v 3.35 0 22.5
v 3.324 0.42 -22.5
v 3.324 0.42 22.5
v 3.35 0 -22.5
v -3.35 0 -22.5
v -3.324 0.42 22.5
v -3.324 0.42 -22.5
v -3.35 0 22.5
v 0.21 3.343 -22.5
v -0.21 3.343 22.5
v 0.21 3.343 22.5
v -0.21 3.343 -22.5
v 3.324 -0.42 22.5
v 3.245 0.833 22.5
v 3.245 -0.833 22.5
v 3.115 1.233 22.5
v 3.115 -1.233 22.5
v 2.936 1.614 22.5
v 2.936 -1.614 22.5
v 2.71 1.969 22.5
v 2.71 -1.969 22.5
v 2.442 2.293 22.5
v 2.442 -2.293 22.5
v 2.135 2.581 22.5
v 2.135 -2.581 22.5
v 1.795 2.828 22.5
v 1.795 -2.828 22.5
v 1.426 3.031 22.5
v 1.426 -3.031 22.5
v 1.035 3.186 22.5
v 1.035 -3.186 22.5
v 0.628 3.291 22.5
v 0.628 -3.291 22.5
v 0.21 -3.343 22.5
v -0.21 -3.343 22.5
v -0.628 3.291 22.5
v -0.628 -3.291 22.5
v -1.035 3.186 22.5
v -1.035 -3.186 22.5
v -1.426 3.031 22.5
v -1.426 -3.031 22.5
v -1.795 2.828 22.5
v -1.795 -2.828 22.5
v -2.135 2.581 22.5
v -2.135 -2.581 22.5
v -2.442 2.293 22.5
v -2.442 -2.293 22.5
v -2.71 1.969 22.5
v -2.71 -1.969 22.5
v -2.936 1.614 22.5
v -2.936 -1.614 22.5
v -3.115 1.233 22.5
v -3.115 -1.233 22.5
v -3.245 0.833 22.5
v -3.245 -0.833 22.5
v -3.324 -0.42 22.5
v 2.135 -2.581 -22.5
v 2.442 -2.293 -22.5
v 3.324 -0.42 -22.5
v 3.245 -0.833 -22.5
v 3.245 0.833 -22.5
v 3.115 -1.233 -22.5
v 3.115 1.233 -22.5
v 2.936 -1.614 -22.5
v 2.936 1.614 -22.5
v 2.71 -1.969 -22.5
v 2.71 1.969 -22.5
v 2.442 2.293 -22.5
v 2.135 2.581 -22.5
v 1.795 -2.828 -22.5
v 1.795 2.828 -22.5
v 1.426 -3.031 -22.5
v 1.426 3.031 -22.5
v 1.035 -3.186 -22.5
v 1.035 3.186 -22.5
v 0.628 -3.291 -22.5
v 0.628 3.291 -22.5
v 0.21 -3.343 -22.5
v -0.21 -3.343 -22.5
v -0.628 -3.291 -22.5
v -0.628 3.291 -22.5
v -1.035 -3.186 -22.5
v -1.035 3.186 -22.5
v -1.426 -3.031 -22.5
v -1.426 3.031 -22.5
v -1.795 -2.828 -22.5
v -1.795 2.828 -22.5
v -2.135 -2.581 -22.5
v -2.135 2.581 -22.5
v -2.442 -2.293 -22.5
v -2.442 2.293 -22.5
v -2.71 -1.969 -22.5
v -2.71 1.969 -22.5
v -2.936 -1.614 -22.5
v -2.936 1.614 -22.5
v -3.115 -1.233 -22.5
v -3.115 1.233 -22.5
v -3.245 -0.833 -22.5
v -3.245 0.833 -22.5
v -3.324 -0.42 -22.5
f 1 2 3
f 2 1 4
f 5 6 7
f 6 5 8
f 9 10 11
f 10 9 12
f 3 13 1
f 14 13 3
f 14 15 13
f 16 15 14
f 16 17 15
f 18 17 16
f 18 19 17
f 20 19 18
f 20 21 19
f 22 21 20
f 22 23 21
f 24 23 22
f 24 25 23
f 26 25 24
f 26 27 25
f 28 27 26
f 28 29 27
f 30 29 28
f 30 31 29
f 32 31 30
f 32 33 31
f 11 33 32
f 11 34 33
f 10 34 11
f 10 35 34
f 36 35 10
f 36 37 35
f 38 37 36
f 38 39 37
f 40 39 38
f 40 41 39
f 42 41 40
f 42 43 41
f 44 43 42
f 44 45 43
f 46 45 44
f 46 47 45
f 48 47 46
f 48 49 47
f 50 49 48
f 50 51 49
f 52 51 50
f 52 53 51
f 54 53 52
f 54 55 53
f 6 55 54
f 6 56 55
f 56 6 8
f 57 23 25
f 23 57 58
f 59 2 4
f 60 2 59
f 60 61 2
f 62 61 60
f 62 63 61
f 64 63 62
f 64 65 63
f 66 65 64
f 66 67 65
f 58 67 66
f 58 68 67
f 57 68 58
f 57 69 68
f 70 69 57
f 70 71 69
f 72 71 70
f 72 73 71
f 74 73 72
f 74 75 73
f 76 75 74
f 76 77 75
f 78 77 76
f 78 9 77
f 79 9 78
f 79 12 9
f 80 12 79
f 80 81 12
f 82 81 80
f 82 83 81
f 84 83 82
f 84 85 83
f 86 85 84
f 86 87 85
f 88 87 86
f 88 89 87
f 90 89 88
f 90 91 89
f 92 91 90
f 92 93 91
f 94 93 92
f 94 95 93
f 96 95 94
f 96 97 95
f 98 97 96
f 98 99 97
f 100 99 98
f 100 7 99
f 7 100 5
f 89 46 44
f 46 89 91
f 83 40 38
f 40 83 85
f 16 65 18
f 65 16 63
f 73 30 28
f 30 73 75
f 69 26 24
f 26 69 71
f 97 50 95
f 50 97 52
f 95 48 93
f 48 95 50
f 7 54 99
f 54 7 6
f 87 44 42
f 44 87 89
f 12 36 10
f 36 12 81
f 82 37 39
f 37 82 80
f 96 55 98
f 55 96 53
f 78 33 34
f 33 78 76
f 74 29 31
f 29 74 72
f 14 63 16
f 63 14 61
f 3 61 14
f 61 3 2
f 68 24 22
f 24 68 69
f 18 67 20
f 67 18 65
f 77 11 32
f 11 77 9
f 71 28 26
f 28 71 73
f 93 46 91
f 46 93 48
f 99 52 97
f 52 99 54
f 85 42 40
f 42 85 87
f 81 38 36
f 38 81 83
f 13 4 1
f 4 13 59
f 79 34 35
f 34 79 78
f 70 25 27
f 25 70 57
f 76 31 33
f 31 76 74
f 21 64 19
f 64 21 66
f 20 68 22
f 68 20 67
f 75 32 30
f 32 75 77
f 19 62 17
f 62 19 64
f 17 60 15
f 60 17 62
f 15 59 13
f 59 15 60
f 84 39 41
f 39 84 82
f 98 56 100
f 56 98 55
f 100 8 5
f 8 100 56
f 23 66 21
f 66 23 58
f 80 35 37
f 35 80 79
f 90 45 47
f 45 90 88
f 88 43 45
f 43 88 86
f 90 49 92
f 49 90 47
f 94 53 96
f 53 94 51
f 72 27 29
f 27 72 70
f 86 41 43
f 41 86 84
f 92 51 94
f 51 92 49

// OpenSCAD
$fn = 50;


difference() {
	union() {
		translate(v = [0, 0, -22.5000000000]) {
			cylinder(h = 45, r = 3.3500000000);
		}
	}
	union() {
		translate(v = [0, 0, -100.0000000000]) {
			cylinder(h = 200, r = 0);
		}
	}
}
